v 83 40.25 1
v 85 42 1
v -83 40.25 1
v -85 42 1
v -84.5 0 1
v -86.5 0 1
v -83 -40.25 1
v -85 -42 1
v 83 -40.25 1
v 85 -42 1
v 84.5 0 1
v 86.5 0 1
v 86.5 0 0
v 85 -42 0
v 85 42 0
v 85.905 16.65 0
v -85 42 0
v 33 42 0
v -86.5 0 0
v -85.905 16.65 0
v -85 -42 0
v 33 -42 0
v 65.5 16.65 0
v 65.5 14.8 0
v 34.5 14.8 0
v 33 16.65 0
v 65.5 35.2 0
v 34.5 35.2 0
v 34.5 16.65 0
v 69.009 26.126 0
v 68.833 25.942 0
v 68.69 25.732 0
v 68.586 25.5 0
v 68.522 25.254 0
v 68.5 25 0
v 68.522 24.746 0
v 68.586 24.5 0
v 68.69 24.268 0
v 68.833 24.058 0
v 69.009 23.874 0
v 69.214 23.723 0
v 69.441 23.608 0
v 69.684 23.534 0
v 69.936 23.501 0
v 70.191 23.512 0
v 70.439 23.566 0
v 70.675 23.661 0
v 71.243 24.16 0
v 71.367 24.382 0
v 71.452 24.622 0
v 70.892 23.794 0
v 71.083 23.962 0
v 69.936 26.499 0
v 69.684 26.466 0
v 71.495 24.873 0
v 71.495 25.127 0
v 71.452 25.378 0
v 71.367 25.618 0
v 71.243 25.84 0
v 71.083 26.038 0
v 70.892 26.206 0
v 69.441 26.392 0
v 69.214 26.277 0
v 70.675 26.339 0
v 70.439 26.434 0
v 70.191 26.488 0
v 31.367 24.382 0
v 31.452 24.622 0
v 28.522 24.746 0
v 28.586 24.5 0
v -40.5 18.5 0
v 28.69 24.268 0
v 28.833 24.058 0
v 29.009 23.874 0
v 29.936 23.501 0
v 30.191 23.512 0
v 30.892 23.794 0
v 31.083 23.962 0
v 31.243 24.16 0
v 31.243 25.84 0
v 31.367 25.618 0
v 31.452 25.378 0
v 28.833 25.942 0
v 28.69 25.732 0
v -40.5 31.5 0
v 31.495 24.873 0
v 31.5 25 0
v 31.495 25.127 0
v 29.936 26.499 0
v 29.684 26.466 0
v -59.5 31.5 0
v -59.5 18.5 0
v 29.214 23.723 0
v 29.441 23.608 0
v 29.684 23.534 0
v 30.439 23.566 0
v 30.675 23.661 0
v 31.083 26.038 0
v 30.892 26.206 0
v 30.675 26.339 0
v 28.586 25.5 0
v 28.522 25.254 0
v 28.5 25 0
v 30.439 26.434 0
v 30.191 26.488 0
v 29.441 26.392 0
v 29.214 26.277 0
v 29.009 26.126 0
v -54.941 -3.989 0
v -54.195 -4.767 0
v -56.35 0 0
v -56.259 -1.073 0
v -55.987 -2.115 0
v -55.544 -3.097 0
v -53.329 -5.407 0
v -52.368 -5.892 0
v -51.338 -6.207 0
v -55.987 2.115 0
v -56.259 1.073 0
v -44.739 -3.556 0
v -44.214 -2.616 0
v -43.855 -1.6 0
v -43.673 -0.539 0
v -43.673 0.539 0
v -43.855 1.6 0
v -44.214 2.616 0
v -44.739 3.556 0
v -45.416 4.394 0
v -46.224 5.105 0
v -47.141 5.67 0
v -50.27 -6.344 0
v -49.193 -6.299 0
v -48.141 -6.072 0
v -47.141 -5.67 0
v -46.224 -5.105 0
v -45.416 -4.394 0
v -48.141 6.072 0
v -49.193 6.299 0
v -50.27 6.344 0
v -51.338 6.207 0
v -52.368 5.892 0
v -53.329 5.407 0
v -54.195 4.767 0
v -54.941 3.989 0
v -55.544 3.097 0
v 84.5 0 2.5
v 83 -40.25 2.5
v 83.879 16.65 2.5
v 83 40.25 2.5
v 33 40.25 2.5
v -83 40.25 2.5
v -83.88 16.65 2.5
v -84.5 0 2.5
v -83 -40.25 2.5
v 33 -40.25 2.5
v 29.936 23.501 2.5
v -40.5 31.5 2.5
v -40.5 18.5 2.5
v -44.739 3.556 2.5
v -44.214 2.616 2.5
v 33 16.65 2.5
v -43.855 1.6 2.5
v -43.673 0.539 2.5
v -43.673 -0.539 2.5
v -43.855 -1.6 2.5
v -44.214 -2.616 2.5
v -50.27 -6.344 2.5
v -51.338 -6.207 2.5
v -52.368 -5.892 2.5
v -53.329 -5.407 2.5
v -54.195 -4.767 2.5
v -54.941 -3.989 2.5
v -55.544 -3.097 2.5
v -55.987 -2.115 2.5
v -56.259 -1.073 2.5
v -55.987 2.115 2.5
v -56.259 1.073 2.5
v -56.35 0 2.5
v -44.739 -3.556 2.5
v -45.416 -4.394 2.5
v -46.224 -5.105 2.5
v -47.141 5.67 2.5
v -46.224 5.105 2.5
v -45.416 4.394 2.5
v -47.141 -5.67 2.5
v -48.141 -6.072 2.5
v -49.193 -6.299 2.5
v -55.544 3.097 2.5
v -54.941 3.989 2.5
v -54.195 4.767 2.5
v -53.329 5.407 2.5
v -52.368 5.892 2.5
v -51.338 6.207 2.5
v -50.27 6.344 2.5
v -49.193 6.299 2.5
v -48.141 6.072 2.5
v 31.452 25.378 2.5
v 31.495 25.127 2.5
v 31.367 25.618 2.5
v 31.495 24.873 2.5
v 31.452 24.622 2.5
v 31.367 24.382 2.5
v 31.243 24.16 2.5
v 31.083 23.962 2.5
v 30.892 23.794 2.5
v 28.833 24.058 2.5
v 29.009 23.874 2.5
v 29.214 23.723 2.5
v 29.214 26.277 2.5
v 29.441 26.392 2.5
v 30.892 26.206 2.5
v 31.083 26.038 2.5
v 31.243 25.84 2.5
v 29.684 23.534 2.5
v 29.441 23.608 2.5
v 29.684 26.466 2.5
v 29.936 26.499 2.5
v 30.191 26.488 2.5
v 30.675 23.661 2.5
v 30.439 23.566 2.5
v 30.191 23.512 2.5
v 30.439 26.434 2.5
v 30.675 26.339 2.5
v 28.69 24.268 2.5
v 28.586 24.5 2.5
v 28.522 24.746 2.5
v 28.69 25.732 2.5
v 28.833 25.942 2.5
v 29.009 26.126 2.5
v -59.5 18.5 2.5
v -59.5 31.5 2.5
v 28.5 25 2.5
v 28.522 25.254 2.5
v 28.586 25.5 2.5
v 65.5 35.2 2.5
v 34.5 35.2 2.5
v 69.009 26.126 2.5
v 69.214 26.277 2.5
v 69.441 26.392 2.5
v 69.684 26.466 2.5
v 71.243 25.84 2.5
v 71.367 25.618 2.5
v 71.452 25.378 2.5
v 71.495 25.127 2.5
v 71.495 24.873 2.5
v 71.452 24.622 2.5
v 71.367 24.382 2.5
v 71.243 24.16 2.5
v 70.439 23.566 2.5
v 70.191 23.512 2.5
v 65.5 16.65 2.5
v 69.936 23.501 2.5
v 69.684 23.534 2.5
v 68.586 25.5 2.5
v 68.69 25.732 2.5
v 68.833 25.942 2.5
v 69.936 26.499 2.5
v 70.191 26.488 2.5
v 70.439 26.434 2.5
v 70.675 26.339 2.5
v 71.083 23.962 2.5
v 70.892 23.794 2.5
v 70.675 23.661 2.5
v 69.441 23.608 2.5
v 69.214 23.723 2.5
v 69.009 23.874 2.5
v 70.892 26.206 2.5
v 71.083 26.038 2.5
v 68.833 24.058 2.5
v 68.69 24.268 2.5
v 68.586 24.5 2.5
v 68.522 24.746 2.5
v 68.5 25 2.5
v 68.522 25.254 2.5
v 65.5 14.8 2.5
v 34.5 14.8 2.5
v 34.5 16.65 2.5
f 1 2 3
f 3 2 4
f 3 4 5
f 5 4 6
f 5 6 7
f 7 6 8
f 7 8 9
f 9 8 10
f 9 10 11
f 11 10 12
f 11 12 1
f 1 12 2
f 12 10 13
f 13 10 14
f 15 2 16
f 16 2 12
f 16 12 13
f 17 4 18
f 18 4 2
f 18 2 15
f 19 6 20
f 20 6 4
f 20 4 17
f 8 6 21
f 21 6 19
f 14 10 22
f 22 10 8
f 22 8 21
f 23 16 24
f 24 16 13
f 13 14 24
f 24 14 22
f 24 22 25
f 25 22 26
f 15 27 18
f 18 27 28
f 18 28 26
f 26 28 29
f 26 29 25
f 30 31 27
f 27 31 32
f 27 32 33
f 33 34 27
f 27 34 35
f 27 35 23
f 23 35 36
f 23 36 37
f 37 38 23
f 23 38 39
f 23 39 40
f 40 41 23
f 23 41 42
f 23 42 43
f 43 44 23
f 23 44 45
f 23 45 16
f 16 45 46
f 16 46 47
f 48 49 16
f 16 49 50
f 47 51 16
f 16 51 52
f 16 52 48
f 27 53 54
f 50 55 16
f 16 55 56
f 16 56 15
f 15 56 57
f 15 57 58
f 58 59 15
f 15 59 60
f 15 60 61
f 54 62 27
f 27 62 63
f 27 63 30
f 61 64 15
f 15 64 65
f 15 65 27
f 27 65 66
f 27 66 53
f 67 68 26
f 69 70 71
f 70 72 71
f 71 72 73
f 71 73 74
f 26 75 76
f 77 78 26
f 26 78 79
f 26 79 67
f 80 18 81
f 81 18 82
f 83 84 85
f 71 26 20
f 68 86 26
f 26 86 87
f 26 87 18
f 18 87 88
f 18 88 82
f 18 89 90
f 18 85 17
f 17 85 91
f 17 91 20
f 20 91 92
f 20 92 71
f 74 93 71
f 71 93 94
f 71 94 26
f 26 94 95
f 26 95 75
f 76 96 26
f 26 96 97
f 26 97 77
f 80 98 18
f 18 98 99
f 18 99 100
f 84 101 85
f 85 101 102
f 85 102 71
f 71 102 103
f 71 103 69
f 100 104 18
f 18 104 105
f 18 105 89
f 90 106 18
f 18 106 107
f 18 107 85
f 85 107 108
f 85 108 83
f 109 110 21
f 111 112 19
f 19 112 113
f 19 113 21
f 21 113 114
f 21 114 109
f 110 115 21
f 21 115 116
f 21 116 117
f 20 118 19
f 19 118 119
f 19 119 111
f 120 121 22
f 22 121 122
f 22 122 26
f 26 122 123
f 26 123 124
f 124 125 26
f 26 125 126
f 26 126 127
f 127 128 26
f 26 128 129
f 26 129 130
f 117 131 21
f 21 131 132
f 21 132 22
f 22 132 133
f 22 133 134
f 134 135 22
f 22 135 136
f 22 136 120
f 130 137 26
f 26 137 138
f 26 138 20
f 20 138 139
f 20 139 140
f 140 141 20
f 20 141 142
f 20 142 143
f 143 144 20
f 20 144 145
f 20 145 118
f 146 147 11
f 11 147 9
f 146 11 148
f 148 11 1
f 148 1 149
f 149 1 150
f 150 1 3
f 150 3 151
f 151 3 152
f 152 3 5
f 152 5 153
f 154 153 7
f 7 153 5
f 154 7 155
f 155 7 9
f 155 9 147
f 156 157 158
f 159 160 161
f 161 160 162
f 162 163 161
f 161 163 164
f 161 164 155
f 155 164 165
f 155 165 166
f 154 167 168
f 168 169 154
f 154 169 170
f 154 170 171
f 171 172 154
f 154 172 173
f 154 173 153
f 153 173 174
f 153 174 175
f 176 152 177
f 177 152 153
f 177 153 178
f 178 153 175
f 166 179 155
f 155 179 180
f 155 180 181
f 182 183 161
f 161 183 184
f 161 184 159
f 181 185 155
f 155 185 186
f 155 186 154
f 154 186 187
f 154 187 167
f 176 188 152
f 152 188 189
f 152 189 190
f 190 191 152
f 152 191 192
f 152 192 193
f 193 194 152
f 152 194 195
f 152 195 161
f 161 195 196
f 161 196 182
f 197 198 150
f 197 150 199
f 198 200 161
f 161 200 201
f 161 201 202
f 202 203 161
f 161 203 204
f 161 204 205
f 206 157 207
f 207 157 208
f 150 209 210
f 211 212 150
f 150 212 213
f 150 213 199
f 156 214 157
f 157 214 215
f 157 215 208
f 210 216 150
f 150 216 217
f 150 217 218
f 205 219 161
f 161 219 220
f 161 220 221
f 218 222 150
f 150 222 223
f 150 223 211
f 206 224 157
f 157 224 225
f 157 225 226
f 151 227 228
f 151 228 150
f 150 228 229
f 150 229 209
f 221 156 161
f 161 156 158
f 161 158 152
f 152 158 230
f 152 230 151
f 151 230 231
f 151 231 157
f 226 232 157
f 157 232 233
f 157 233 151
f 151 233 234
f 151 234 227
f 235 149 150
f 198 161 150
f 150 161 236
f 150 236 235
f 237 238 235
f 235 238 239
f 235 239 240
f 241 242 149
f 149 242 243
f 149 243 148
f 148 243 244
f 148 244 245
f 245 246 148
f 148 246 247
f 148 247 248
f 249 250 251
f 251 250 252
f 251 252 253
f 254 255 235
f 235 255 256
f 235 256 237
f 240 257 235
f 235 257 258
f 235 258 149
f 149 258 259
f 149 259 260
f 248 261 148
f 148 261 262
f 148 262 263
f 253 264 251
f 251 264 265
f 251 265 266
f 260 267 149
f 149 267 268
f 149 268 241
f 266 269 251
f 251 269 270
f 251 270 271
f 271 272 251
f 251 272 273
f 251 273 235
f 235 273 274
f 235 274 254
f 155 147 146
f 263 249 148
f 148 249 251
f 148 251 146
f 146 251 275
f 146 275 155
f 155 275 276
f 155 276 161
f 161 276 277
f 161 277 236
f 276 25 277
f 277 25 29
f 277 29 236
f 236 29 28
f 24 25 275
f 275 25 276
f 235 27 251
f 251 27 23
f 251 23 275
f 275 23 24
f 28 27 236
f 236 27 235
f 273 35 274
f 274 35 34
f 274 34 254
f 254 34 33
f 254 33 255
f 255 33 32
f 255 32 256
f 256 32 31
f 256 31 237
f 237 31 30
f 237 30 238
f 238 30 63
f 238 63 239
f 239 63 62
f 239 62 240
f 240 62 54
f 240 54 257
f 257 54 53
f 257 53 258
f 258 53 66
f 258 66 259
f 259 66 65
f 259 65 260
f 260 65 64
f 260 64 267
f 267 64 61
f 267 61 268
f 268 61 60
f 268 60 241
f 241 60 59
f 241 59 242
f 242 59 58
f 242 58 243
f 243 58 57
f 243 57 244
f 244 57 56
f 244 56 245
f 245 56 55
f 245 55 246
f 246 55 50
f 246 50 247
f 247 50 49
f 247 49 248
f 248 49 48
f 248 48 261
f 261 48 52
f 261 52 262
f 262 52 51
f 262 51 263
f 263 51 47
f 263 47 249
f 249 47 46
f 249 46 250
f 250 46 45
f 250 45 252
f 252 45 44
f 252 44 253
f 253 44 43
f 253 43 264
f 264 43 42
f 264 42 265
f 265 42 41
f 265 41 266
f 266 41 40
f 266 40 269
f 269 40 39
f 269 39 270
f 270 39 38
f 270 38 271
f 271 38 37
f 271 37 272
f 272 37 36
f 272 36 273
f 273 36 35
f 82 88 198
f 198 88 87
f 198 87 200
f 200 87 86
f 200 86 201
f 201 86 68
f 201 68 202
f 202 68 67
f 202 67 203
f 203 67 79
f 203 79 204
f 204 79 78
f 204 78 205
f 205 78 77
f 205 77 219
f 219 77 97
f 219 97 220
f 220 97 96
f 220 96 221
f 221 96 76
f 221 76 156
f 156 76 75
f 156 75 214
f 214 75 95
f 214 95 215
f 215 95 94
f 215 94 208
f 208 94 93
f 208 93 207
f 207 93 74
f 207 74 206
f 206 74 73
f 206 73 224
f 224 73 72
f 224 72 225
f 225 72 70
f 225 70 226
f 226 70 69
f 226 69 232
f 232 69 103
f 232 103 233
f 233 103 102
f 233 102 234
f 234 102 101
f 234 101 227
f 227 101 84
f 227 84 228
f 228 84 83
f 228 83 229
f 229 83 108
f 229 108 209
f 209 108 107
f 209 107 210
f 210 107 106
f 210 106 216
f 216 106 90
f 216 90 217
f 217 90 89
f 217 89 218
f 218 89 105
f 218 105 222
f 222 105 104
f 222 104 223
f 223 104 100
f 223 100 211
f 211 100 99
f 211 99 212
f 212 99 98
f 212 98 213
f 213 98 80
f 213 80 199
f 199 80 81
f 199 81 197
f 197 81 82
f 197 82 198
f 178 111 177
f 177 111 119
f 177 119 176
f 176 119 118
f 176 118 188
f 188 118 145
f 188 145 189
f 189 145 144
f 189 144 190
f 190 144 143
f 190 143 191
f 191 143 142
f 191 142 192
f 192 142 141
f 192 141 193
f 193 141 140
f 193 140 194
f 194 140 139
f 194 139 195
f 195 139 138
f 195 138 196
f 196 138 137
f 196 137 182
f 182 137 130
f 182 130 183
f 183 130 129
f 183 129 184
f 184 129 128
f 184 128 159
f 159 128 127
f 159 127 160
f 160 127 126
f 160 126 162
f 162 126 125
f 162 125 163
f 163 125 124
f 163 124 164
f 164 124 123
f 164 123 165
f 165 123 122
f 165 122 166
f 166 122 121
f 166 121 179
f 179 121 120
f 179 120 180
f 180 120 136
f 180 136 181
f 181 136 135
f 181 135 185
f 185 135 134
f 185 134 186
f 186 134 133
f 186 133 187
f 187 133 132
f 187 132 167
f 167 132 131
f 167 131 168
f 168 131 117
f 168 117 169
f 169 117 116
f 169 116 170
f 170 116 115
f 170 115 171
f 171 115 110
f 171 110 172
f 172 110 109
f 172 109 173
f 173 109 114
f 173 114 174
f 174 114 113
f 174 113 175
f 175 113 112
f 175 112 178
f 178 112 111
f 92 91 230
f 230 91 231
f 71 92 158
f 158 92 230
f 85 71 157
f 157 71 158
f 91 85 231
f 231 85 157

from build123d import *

# Parameters (mm, degrees)
BOSS_EXTRUDE1_DEPTH = 1
BOSS_EXTRUDE2_DEPTH = 1.5
CUT_EXTRUDE1_REACH  = 98.19
SKETCH3_R           = 1.5
SKETCH3_R_2         = 6.35
SKETCH3_W           = 31
SKETCH3_H           = 20.4
SKETCH3_W_2         = 19
SKETCH3_H_2         = 13


with BuildPart() as part:
    # Sketch1 → Boss-Extrude1 (new body)
    with BuildSketch(Plane.XY):
        Polygon((-85, 42), (85, 42), (86.5, 0), (85, -42), (-85, -42), (-86.5, 0), align=None)
    extrude(amount=BOSS_EXTRUDE1_DEPTH)

    # Sketch2 → Boss-Extrude2 (add)
    with BuildSketch(Plane.XY.offset(1)):
        Polygon((-83, 40.25), (83, 40.25), (84.5, 0), (83, -40.25), (-83, -40.25), (-84.5, 0), align=None)
    extrude(amount=BOSS_EXTRUDE2_DEPTH)

    # Sketch3 → Cut-Extrude1 (cut, up to next)
    with BuildSketch(Plane(origin=(0, 0, 0), x_dir=(-1, 0, 0), z_dir=(0, 0, -1)), mode=Mode.PRIVATE) as cut_extrude1_sk1:
        with Locations((-70, 25)):
            Circle(SKETCH3_R)
    cut_extrude1_tool1 = extrude(cut_extrude1_sk1.sketch, amount=-CUT_EXTRUDE1_REACH, mode=Mode.PRIVATE) & part.part
    # Sketch3 → Cut-Extrude1 (cut, up to next)
    with BuildSketch(Plane(origin=(0, 0, 0), x_dir=(-1, 0, 0), z_dir=(0, 0, -1)), mode=Mode.PRIVATE) as cut_extrude1_sk2:
        with Locations((-30, 25)):
            Circle(SKETCH3_R)
    cut_extrude1_tool2 = extrude(cut_extrude1_sk2.sketch, amount=-CUT_EXTRUDE1_REACH, mode=Mode.PRIVATE) & part.part
    # Sketch3 → Cut-Extrude1 (cut, up to next)
    with BuildSketch(Plane(origin=(0, 0, 0), x_dir=(-1, 0, 0), z_dir=(0, 0, -1)), mode=Mode.PRIVATE) as cut_extrude1_sk3:
        with Locations((50, 0)):
            Circle(SKETCH3_R_2)
    cut_extrude1_tool3 = extrude(cut_extrude1_sk3.sketch, amount=-CUT_EXTRUDE1_REACH, mode=Mode.PRIVATE) & part.part
    # Sketch3 → Cut-Extrude1 (cut, up to next)
    with BuildSketch(Plane(origin=(0, 0, 0), x_dir=(-1, 0, 0), z_dir=(0, 0, -1)), mode=Mode.PRIVATE) as cut_extrude1_sk4:
        with Locations((-50, 25)):
            Rectangle(SKETCH3_W, SKETCH3_H)
    cut_extrude1_tool4 = extrude(cut_extrude1_sk4.sketch, amount=-CUT_EXTRUDE1_REACH, mode=Mode.PRIVATE) & part.part
    # Sketch3 → Cut-Extrude1 (cut, up to next)
    with BuildSketch(Plane(origin=(0, 0, 0), x_dir=(-1, 0, 0), z_dir=(0, 0, -1)), mode=Mode.PRIVATE) as cut_extrude1_sk5:
        with Locations((50, 25)):
            Rectangle(SKETCH3_W_2, SKETCH3_H_2)
    cut_extrude1_tool5 = extrude(cut_extrude1_sk5.sketch, amount=-CUT_EXTRUDE1_REACH, mode=Mode.PRIVATE) & part.part
    add(cut_extrude1_tool1.solids().sort_by_distance((70, 25, 0))[0], mode=Mode.SUBTRACT)
    add(cut_extrude1_tool2.solids().sort_by_distance((30, 25, 0))[0], mode=Mode.SUBTRACT)
    add(cut_extrude1_tool3.solids().sort_by_distance((-50, 0, 0))[0], mode=Mode.SUBTRACT)
    add(cut_extrude1_tool4.solids().sort_by_distance((50, 25, 0))[0], mode=Mode.SUBTRACT)
    add(cut_extrude1_tool5.solids().sort_by_distance((-50, 25, 0))[0], mode=Mode.SUBTRACT)


solid = part.part
